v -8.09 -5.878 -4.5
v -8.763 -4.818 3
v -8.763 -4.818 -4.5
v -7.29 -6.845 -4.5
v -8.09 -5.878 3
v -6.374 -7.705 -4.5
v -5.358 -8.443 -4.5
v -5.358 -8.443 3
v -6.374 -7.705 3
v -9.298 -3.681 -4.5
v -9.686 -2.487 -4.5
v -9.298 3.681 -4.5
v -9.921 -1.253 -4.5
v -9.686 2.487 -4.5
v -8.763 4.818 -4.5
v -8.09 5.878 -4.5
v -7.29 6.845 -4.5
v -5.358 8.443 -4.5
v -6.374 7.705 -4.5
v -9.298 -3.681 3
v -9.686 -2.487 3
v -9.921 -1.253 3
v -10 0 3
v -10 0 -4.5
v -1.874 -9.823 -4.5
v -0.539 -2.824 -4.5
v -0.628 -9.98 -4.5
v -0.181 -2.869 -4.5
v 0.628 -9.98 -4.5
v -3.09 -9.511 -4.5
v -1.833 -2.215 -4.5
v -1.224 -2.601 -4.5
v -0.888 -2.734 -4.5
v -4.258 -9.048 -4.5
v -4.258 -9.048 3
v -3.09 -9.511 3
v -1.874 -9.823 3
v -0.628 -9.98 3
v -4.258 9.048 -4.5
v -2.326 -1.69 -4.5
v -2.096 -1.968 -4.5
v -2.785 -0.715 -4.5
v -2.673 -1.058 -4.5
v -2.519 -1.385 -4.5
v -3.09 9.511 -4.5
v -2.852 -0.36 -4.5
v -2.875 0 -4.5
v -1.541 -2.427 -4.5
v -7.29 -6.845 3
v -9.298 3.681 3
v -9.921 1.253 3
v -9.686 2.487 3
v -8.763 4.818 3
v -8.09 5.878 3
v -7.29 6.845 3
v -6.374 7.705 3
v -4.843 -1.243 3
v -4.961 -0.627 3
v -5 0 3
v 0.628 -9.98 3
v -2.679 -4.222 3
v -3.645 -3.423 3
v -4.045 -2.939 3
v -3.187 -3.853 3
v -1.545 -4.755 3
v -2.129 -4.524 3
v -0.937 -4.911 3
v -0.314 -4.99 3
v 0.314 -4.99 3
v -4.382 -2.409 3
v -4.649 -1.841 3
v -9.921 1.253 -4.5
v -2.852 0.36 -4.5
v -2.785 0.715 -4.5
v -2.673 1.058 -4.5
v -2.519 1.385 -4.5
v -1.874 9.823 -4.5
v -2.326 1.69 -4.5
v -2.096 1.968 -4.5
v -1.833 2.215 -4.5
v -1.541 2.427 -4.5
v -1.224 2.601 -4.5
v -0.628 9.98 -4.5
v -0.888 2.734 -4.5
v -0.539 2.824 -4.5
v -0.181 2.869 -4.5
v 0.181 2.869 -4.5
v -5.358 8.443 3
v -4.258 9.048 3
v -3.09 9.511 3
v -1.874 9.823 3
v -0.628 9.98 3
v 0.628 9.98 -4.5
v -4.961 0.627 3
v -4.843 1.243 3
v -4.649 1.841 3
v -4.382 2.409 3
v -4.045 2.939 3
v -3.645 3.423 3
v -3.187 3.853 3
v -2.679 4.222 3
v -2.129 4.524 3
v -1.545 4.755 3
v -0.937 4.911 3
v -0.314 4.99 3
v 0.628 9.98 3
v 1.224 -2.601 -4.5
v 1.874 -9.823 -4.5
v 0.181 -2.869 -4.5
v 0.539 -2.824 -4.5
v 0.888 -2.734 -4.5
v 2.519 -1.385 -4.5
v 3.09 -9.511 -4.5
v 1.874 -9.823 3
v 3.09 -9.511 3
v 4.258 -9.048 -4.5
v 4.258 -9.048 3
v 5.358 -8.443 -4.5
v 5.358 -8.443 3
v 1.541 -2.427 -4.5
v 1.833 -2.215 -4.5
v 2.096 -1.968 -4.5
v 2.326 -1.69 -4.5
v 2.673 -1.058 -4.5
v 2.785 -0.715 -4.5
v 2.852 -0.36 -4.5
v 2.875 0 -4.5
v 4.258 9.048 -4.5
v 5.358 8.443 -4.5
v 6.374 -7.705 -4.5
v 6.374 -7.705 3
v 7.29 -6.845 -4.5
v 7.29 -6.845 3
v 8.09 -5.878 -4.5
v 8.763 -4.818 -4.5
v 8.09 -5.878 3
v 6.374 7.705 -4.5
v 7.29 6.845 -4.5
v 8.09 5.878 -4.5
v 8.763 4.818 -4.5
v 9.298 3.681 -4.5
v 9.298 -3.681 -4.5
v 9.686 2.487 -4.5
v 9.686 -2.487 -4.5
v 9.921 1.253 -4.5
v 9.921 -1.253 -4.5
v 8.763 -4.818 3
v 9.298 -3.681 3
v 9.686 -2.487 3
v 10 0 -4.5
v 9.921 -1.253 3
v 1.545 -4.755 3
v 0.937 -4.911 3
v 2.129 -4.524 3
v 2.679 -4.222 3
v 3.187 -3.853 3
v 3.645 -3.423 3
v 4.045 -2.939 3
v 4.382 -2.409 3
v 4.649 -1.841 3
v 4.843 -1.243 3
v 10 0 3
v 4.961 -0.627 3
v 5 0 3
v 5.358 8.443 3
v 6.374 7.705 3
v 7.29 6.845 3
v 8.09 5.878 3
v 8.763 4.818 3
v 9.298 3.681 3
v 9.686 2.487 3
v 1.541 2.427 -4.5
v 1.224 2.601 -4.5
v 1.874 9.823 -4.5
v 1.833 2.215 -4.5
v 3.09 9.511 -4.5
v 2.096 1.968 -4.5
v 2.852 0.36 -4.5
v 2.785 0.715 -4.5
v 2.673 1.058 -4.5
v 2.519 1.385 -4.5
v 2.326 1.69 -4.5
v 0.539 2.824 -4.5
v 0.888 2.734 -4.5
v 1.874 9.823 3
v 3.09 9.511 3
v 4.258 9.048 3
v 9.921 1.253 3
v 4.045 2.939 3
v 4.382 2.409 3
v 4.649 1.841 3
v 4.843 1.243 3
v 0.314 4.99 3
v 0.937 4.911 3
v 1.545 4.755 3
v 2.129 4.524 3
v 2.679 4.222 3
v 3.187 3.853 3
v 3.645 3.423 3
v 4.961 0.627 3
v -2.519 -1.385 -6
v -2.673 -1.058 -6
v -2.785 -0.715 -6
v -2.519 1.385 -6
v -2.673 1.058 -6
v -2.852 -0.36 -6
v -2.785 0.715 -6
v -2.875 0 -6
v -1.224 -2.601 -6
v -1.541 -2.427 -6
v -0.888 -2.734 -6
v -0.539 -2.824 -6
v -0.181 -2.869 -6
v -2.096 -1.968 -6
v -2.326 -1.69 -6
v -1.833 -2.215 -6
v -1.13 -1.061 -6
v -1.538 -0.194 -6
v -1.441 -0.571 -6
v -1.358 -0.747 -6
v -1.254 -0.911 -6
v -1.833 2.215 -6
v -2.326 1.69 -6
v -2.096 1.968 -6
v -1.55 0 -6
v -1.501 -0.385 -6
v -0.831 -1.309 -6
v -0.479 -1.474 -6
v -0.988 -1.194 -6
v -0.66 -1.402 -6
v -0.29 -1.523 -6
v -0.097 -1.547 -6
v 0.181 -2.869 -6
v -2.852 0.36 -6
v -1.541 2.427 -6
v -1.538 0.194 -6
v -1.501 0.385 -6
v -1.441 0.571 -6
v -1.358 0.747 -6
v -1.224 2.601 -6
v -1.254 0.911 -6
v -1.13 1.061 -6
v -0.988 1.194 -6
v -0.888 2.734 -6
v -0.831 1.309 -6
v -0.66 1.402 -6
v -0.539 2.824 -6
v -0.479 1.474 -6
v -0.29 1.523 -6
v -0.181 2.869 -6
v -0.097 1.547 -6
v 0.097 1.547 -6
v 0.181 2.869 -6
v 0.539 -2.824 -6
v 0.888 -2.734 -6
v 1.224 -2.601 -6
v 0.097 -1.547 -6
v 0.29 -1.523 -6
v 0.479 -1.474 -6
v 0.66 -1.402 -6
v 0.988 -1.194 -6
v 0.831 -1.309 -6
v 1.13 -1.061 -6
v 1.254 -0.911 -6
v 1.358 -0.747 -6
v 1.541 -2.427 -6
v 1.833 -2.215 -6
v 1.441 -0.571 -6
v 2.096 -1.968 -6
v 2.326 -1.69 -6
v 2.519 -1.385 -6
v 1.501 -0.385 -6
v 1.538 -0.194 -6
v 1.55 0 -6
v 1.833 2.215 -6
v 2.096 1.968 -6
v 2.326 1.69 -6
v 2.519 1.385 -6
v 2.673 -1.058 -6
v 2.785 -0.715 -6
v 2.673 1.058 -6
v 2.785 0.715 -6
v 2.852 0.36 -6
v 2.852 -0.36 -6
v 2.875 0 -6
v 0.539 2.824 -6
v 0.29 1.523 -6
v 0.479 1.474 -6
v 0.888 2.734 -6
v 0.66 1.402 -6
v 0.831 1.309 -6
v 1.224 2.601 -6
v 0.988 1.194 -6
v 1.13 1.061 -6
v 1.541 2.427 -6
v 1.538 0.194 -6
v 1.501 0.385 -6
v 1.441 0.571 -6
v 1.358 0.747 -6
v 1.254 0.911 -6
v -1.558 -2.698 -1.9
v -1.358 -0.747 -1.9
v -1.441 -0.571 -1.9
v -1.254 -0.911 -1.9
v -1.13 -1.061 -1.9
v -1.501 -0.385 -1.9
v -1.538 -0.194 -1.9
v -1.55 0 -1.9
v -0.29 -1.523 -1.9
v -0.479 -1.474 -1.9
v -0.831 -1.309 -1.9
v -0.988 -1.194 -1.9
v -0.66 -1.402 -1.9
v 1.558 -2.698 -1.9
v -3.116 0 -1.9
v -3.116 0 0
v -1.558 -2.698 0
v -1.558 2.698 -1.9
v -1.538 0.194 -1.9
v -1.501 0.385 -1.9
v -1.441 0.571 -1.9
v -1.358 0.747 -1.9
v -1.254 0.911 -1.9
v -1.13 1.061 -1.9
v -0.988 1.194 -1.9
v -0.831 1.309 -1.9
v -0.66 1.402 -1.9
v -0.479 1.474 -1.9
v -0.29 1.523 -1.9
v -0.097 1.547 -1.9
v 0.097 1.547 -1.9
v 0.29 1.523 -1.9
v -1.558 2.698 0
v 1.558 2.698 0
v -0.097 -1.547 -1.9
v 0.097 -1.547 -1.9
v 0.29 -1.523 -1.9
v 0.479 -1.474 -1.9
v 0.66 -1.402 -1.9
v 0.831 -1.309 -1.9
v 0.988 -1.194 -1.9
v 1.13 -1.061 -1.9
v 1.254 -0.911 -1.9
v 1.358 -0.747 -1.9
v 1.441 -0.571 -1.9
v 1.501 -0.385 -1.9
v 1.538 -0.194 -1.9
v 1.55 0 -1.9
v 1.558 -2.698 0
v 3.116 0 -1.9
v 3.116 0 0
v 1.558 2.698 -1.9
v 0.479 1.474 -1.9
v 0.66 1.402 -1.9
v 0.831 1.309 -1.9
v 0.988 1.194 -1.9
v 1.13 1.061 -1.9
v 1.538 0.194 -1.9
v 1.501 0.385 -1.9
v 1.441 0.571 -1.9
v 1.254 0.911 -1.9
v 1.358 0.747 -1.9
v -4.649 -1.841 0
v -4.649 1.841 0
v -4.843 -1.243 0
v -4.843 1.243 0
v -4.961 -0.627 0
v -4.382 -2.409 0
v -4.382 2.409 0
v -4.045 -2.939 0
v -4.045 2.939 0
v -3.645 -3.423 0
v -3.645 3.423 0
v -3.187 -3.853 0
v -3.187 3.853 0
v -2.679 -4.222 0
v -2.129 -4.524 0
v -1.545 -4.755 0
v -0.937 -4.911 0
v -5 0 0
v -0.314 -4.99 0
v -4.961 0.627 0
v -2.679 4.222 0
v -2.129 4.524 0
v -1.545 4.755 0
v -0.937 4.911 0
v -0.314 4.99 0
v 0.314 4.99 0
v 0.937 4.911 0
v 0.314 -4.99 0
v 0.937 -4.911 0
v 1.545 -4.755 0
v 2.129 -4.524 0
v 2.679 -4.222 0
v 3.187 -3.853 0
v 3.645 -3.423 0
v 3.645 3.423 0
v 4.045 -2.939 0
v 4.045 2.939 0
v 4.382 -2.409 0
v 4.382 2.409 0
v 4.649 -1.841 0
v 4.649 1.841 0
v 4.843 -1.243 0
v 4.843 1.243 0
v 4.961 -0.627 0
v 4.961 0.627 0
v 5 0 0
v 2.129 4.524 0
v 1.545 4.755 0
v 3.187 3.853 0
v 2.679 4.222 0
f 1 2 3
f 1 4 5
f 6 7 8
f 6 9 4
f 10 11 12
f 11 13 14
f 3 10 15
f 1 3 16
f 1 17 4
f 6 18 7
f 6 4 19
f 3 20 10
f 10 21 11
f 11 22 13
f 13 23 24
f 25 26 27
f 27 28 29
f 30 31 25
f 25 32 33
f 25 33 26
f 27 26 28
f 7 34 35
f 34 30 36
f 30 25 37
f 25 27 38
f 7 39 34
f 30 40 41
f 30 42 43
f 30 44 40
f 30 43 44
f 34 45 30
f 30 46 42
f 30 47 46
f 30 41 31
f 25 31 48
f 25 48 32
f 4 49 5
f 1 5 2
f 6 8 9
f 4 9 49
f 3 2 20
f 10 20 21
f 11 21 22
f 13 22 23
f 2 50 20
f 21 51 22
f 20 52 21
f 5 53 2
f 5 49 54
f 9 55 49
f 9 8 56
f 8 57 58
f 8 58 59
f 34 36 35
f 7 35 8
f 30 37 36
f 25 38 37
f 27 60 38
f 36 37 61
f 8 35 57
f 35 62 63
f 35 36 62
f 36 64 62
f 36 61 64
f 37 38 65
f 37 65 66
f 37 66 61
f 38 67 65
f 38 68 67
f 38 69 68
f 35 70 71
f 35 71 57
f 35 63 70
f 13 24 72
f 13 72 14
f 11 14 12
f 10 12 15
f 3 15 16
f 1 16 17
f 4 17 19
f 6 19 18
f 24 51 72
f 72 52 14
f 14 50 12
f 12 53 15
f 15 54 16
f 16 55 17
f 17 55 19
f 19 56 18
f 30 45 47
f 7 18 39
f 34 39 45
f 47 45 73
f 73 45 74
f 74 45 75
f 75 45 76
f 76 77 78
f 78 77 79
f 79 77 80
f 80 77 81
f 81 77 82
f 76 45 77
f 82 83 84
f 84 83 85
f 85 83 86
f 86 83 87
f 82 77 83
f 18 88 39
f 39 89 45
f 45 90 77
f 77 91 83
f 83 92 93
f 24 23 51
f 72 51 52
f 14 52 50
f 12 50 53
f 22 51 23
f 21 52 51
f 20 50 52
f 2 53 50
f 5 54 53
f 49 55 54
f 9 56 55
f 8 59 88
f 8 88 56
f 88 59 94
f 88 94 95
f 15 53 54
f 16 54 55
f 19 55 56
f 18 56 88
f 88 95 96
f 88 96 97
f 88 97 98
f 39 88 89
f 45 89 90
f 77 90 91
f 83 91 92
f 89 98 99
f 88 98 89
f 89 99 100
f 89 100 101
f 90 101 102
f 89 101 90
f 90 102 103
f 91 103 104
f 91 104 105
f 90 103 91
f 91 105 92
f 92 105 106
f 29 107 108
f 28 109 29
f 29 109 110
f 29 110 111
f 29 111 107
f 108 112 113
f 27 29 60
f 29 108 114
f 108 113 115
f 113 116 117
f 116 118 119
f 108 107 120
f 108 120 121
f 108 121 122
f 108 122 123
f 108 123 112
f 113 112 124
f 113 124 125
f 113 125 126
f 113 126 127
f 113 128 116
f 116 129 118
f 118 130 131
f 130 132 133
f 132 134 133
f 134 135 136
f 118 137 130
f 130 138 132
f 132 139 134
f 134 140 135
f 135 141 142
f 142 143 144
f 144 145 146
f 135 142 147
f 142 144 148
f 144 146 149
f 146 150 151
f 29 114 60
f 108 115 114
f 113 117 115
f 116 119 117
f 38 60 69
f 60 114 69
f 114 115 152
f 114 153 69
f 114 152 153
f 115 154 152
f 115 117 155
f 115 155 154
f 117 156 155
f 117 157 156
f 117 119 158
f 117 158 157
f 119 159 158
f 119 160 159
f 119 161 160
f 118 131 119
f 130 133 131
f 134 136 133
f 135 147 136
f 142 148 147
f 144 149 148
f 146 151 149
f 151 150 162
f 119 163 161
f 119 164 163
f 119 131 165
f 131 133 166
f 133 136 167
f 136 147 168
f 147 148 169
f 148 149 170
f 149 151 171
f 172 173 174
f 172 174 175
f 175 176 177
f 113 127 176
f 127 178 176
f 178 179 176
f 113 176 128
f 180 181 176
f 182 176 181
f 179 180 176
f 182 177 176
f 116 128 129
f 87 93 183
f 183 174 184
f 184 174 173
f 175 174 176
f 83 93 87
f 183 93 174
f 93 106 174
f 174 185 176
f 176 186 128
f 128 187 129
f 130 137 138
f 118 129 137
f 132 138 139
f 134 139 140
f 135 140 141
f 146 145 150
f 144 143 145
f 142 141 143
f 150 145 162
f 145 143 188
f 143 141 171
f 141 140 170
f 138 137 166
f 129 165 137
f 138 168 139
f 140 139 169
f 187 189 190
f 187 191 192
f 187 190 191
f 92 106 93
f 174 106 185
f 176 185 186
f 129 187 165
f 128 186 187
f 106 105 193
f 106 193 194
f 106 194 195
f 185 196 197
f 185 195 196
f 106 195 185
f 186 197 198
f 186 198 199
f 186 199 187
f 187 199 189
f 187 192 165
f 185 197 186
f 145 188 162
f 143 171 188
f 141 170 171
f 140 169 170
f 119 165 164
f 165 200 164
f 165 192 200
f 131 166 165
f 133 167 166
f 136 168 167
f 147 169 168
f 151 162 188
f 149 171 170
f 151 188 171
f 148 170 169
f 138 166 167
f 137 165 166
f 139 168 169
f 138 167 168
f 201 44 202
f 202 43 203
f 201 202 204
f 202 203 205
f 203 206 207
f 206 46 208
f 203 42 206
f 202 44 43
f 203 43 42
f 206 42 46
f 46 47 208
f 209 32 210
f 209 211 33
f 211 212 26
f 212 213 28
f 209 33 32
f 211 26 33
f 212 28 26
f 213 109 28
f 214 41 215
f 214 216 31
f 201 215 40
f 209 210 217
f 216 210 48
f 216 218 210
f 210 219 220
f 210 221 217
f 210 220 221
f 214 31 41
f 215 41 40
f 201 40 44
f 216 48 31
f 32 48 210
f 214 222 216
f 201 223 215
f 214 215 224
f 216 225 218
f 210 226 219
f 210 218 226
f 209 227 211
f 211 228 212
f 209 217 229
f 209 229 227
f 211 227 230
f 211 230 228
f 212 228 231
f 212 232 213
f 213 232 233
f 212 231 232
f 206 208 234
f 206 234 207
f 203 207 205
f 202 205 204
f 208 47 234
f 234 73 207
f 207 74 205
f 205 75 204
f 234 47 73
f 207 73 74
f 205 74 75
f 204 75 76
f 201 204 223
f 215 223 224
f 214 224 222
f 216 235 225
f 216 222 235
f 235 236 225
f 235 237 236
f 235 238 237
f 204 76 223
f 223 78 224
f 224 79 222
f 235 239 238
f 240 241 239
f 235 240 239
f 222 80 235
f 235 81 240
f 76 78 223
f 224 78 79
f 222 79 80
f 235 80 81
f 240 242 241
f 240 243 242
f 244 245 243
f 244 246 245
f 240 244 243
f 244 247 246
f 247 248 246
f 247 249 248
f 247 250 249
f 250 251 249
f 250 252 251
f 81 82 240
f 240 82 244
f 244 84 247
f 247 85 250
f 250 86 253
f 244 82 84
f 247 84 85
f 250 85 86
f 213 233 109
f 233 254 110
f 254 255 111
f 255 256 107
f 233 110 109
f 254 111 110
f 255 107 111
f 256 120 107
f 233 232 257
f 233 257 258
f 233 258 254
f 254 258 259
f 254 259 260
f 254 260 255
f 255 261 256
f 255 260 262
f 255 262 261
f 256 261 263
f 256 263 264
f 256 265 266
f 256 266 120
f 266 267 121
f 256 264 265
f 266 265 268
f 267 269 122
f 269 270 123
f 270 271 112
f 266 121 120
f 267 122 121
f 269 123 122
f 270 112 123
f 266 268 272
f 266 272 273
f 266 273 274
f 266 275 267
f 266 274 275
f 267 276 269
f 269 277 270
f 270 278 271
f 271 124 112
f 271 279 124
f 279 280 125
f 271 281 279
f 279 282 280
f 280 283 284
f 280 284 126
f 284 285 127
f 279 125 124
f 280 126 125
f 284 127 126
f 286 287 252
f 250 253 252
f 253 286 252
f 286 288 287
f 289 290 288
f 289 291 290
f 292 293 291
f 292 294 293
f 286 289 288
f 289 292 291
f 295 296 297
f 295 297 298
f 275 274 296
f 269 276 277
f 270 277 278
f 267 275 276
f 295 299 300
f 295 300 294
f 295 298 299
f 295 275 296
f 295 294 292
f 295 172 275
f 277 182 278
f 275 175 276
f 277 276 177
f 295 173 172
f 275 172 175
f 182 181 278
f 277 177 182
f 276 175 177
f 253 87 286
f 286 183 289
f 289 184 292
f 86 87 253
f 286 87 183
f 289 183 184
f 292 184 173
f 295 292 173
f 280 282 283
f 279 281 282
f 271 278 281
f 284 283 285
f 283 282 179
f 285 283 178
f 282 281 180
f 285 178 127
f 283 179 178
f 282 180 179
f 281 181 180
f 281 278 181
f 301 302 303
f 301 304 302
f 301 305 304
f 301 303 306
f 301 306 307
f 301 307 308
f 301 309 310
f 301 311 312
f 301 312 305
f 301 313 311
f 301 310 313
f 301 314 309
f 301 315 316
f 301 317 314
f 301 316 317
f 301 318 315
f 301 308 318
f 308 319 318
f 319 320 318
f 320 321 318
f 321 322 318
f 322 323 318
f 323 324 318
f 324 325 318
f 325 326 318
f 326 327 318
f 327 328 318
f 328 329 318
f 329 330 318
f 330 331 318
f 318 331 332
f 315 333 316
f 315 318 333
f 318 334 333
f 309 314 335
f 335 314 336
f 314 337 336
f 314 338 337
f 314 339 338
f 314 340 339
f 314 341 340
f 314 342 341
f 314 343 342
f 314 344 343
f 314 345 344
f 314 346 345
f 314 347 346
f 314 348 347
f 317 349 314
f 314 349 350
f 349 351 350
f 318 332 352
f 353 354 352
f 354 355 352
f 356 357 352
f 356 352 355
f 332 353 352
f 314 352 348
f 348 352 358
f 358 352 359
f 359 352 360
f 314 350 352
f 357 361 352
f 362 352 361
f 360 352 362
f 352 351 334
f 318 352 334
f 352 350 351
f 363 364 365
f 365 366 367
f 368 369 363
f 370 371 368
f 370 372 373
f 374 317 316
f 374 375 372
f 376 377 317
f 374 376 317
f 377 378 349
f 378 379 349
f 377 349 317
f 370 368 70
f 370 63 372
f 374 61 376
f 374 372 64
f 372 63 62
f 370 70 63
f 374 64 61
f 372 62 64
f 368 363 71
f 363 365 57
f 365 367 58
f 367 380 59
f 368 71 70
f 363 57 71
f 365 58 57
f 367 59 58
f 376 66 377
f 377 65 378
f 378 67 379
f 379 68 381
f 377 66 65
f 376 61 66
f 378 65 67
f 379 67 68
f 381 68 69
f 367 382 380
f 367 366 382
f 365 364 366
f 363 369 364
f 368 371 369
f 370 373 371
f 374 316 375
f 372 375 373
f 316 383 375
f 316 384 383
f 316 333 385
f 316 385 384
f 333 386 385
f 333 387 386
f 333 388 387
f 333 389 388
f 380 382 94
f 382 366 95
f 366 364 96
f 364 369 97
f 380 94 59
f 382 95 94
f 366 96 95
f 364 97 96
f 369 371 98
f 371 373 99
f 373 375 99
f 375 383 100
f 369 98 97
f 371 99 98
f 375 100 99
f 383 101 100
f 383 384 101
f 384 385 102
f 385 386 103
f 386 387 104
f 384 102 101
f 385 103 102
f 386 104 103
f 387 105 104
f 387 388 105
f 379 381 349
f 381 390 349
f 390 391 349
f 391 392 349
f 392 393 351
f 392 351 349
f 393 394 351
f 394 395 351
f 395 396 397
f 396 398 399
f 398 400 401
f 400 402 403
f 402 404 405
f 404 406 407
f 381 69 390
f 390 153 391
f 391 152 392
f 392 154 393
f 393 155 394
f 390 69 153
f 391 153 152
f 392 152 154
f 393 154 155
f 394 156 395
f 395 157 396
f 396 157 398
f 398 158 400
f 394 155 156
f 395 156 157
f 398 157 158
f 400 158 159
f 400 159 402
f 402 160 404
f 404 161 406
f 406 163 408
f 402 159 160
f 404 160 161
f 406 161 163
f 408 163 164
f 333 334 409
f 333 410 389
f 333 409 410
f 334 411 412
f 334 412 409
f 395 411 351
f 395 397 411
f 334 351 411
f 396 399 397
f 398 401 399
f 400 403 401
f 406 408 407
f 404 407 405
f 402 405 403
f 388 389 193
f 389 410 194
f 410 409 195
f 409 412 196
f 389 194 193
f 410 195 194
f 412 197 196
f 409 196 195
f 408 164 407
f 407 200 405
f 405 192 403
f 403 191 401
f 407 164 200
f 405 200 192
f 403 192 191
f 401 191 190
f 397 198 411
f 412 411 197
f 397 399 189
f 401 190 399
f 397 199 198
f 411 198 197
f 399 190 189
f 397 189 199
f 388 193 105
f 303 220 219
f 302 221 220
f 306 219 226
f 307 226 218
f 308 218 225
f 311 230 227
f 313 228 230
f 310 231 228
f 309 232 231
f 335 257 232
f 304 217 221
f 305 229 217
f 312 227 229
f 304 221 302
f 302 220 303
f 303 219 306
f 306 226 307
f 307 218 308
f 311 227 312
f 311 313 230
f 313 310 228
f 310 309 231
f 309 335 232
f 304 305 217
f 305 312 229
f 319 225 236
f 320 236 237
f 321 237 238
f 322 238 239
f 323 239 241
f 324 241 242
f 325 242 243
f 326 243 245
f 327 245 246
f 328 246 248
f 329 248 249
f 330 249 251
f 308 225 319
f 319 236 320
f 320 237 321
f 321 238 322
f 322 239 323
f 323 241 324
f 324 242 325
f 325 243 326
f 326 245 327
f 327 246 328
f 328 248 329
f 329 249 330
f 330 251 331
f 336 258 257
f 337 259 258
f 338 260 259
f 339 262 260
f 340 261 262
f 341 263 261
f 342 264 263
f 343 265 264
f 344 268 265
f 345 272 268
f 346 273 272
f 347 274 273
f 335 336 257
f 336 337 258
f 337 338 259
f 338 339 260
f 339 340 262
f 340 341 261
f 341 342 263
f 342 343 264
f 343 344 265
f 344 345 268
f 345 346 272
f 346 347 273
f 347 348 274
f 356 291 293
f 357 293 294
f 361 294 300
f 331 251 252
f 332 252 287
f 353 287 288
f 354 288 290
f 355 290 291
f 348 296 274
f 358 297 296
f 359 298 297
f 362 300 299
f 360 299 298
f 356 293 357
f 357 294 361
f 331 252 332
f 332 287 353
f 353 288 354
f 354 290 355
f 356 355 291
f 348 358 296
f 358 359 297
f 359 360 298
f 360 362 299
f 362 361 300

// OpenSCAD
$fn = 50;

difference() {
	union() {
		translate(v = [0, 0, -4.5]) {
			cylinder(h = 7.5, r = 10.0);
		}
		#translate(v = [0, 0, -6.0]) {
			cylinder(h = 6, r = 2.875);
		}
	}
	union() {
		translate(v = [0, 0, 0]) {
			rotate(a = [0, 0, 0]) {
				difference() {
					union() {
						translate(v = [0, 0, -1.9]) {
							linear_extrude(height = 1.9) {
								polygon(points = [[3.1158, 0.0], [1.5579000000000005, 2.698361953111554], [-1.5578999999999994, 2.6983619531115544], [-3.1158, 3.815754496783323e-16], [-1.5579000000000014, -2.6983619531115535], [1.557899999999998, -2.6983619531115552]]);
							}
						}
					}
					union();
				}
			}
		}
		#cylinder(h = 3, r = 5.0);
		#translate(v = [0, 0, -100.0]) {
			cylinder(h = 200, r = 1.55);
		}
	}
}
